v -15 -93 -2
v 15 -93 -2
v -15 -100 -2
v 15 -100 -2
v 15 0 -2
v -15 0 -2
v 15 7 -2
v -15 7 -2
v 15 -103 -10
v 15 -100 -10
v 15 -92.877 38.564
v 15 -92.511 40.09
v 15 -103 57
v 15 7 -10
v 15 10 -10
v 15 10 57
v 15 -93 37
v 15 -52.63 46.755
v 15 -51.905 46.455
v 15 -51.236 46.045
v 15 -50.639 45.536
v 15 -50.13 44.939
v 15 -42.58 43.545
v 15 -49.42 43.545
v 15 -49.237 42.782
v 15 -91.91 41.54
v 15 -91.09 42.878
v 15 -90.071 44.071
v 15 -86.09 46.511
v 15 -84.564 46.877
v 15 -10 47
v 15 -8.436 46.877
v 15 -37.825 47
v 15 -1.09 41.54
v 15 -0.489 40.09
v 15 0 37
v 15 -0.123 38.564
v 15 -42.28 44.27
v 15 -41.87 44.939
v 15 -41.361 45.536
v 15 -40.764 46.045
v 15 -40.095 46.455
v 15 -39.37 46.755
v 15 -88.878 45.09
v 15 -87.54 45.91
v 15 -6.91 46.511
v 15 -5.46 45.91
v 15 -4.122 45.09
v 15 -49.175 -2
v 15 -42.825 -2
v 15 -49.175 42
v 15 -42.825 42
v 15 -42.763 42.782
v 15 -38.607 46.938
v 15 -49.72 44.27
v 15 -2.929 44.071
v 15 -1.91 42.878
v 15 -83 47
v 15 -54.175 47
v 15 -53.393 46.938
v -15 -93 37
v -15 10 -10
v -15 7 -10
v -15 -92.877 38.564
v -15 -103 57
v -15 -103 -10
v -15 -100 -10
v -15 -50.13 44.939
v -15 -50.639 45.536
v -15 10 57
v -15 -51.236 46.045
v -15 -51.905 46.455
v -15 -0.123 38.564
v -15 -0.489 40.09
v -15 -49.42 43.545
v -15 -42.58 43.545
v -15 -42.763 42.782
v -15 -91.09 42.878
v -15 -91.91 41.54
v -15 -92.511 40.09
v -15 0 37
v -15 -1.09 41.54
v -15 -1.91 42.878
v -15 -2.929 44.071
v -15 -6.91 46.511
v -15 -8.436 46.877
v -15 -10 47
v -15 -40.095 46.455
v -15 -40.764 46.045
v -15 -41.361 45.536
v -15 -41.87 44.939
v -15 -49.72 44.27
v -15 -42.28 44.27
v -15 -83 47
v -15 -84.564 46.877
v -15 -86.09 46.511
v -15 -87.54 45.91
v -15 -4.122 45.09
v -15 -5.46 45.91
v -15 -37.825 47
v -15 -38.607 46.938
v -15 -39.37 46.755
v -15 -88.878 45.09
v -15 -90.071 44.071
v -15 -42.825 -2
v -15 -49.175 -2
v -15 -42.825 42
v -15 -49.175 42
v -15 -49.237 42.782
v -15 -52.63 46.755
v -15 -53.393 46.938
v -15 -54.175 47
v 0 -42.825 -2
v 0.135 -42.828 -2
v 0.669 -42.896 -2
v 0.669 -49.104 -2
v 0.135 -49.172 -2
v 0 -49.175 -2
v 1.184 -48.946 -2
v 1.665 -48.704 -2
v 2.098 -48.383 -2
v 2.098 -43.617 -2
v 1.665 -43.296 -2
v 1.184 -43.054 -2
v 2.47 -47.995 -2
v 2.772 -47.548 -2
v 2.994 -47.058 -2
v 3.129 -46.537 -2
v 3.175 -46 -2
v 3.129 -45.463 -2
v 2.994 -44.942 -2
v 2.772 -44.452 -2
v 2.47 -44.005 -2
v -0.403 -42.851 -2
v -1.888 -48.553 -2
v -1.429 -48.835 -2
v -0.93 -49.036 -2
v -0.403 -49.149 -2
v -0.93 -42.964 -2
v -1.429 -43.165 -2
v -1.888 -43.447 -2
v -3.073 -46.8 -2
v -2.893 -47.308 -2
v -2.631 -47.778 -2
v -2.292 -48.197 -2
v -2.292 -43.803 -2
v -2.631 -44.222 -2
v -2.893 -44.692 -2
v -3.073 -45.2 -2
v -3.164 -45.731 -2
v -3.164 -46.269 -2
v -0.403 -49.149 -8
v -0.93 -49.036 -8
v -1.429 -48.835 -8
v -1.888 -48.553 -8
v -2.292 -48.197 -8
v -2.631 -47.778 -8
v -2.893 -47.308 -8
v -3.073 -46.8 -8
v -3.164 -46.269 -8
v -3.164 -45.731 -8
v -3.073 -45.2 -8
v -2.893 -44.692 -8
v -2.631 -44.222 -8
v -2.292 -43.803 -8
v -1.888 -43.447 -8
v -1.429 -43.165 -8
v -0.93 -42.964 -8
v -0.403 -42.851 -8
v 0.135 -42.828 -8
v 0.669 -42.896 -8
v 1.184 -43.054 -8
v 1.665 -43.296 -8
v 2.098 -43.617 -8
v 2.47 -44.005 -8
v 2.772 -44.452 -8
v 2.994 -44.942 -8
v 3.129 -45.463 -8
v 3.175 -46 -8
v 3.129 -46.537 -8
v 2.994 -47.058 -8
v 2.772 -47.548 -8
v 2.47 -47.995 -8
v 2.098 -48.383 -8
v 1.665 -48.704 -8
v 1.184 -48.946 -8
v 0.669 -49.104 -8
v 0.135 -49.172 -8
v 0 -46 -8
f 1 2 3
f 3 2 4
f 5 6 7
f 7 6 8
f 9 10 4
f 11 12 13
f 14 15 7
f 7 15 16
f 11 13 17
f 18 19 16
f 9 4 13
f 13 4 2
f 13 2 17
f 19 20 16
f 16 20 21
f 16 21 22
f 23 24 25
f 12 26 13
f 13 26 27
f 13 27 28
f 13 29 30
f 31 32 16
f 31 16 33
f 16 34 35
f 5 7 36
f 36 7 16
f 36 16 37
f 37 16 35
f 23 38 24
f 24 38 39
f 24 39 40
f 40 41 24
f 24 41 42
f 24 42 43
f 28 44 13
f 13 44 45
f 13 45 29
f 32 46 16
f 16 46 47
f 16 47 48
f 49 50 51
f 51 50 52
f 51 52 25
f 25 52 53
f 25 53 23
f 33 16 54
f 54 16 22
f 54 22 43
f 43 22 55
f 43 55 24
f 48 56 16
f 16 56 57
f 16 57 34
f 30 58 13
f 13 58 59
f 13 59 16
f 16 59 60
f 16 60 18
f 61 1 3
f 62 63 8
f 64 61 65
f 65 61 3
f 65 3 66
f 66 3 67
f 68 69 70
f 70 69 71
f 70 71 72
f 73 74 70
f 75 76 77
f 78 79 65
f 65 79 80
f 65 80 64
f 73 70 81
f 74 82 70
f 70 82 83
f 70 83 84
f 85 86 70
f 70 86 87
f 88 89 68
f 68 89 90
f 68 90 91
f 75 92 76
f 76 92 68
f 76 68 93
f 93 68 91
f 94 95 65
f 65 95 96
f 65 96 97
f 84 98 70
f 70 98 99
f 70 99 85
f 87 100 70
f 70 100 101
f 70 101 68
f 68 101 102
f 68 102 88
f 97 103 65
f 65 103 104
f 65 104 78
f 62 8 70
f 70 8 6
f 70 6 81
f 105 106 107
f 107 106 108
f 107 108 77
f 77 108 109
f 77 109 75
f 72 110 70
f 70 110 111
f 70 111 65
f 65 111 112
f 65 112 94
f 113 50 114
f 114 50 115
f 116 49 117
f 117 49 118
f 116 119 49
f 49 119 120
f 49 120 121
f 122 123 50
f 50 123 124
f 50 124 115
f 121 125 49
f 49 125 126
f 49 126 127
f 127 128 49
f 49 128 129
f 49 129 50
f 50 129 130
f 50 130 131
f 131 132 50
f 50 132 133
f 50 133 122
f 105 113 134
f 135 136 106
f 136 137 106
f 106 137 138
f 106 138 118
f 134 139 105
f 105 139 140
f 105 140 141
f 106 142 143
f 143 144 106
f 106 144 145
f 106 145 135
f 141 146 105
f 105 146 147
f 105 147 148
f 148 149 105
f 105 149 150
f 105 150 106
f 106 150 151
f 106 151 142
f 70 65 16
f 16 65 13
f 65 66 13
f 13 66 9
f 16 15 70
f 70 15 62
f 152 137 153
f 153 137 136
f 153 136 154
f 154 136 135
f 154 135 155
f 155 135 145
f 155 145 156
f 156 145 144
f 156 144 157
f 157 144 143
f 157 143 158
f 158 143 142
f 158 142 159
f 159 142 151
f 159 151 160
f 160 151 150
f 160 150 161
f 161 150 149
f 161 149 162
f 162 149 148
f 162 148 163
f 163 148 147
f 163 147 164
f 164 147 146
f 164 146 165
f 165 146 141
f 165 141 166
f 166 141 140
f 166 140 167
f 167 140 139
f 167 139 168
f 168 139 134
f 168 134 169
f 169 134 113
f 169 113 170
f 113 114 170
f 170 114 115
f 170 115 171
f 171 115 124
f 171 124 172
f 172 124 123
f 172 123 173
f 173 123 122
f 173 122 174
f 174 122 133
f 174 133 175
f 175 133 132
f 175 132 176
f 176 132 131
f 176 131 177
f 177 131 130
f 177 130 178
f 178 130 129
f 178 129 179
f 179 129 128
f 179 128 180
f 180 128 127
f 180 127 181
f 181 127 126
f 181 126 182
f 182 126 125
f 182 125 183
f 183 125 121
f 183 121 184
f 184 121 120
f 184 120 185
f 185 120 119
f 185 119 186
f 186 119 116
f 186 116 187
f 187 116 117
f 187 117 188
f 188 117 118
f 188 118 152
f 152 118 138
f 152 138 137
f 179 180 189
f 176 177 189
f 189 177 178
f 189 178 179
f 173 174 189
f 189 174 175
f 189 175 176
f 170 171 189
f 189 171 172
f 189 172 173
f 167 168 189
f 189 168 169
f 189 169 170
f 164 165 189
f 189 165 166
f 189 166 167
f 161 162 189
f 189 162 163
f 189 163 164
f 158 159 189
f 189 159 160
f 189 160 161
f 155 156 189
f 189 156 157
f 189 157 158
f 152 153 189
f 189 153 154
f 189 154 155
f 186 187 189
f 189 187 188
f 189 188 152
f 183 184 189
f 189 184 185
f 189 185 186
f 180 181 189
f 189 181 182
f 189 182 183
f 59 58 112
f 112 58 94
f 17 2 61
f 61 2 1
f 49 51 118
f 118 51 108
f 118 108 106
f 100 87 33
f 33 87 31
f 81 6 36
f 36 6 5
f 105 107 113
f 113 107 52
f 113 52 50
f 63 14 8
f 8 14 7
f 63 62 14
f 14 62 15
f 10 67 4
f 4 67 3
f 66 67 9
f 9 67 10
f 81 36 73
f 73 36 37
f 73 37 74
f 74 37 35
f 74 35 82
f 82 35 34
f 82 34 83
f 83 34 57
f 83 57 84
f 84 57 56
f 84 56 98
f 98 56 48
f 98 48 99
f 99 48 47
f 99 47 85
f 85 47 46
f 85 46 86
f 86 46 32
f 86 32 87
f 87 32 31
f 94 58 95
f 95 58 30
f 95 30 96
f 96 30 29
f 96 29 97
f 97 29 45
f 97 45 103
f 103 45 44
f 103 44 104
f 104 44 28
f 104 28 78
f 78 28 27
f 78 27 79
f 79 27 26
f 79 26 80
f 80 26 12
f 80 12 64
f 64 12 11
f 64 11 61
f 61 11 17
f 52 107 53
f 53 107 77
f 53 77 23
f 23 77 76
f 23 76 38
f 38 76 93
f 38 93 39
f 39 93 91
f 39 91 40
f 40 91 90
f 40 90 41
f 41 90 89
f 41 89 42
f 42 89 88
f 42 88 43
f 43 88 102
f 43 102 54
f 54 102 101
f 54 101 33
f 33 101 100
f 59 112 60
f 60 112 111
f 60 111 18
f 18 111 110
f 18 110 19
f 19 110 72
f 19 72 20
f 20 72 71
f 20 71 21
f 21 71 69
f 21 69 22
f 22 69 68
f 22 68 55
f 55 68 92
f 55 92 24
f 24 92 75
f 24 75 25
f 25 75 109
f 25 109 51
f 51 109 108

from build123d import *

# Parameters (mm, degrees)
BOSS_EXTRUDE3_DEPTH      = 57
BOSS_EXTRUDE3_DEPTH_BACK = 2
SKETCH1_W                = 30
SKETCH1_H                = 113
SKETCH1_6_R              = 3.175
BOSS_EXTRUDE4_DEPTH      = 8
CUT_EXTRUDE1_DEPTH       = 122.482509029
CUT_EXTRUDE1_DEPTH_BACK  = 122.482509029
SKETCH2_W                = 49
SKETCH2_H                = 42.825
SKETCH2_H_2              = 43.825
SKETCH3_W                = 30
SKETCH3_H                = 3
BOSS_EXTRUDE5_DEPTH      = 8
FILLET2_R                = 10
FILLET3_R                = 10
FILLET4_R                = 5
FILLET5_R                = 5


with BuildPart() as part:
    # Sketch1 → Boss-Extrude3 (new, two sides: drawn at the far end of the back side and taken through both)
    with BuildSketch(Plane.XY.offset(-BOSS_EXTRUDE3_DEPTH_BACK)):
        with Locations((0, -46.5)):
            Rectangle(SKETCH1_W, SKETCH1_H)
    extrude(amount=BOSS_EXTRUDE3_DEPTH + BOSS_EXTRUDE3_DEPTH_BACK)

    # Sketch1<6> → Boss-Extrude4 (add)
    with BuildSketch(Plane.XY):
        with Locations((0, -46)):
            Circle(SKETCH1_6_R)
    extrude(amount=-BOSS_EXTRUDE4_DEPTH)

    # Sketch2 → Cut-Extrude1 (cut, two sides: drawn at the far end of the back side and taken through both)
    with BuildSketch(Plane(origin=(15, 0, 0), x_dir=(0, 0, -1), z_dir=(1, 0, 0)).offset(-CUT_EXTRUDE1_DEPTH_BACK)):
        with Locations((-22.5, -21.4125)):
            Rectangle(SKETCH2_W, SKETCH2_H)
        with Locations((-22.5, -71.0875)):
            Rectangle(SKETCH2_W, SKETCH2_H_2)
    extrude(amount=CUT_EXTRUDE1_DEPTH + CUT_EXTRUDE1_DEPTH_BACK, mode=Mode.SUBTRACT)

    # Sketch3 → Boss-Extrude5 (add)
    with BuildSketch(Plane(origin=(0, 0, -2), x_dir=(-1, 0, 0), z_dir=(0, 0, -1))):
        with Locations((0, 8.5)):
            Rectangle(SKETCH3_W, SKETCH3_H)
        with Locations((0, -101.5)):
            Rectangle(SKETCH3_W, SKETCH3_H)
    extrude(amount=BOSS_EXTRUDE5_DEPTH)

    # Fillet2
    fillet2_edges = [part.edges().sort_by_distance(p)[0] for p in [
        (0, 0, 47),
    ]]
    fillet(fillet2_edges, radius=FILLET2_R)

    # Fillet3
    fillet3_edges = [part.edges().sort_by_distance(p)[0] for p in [
        (0, -93, 47),
    ]]
    fillet(fillet3_edges, radius=FILLET3_R)

    # Fillet4
    fillet4_edges = [part.edges().sort_by_distance(p)[0] for p in [
        (0, -42.825, 47),
    ]]
    fillet(fillet4_edges, radius=FILLET4_R)

    # Fillet5
    fillet5_edges = [part.edges().sort_by_distance(p)[0] for p in [
        (0, -49.175, 47),
    ]]
    fillet(fillet5_edges, radius=FILLET5_R)


solid = part.part
